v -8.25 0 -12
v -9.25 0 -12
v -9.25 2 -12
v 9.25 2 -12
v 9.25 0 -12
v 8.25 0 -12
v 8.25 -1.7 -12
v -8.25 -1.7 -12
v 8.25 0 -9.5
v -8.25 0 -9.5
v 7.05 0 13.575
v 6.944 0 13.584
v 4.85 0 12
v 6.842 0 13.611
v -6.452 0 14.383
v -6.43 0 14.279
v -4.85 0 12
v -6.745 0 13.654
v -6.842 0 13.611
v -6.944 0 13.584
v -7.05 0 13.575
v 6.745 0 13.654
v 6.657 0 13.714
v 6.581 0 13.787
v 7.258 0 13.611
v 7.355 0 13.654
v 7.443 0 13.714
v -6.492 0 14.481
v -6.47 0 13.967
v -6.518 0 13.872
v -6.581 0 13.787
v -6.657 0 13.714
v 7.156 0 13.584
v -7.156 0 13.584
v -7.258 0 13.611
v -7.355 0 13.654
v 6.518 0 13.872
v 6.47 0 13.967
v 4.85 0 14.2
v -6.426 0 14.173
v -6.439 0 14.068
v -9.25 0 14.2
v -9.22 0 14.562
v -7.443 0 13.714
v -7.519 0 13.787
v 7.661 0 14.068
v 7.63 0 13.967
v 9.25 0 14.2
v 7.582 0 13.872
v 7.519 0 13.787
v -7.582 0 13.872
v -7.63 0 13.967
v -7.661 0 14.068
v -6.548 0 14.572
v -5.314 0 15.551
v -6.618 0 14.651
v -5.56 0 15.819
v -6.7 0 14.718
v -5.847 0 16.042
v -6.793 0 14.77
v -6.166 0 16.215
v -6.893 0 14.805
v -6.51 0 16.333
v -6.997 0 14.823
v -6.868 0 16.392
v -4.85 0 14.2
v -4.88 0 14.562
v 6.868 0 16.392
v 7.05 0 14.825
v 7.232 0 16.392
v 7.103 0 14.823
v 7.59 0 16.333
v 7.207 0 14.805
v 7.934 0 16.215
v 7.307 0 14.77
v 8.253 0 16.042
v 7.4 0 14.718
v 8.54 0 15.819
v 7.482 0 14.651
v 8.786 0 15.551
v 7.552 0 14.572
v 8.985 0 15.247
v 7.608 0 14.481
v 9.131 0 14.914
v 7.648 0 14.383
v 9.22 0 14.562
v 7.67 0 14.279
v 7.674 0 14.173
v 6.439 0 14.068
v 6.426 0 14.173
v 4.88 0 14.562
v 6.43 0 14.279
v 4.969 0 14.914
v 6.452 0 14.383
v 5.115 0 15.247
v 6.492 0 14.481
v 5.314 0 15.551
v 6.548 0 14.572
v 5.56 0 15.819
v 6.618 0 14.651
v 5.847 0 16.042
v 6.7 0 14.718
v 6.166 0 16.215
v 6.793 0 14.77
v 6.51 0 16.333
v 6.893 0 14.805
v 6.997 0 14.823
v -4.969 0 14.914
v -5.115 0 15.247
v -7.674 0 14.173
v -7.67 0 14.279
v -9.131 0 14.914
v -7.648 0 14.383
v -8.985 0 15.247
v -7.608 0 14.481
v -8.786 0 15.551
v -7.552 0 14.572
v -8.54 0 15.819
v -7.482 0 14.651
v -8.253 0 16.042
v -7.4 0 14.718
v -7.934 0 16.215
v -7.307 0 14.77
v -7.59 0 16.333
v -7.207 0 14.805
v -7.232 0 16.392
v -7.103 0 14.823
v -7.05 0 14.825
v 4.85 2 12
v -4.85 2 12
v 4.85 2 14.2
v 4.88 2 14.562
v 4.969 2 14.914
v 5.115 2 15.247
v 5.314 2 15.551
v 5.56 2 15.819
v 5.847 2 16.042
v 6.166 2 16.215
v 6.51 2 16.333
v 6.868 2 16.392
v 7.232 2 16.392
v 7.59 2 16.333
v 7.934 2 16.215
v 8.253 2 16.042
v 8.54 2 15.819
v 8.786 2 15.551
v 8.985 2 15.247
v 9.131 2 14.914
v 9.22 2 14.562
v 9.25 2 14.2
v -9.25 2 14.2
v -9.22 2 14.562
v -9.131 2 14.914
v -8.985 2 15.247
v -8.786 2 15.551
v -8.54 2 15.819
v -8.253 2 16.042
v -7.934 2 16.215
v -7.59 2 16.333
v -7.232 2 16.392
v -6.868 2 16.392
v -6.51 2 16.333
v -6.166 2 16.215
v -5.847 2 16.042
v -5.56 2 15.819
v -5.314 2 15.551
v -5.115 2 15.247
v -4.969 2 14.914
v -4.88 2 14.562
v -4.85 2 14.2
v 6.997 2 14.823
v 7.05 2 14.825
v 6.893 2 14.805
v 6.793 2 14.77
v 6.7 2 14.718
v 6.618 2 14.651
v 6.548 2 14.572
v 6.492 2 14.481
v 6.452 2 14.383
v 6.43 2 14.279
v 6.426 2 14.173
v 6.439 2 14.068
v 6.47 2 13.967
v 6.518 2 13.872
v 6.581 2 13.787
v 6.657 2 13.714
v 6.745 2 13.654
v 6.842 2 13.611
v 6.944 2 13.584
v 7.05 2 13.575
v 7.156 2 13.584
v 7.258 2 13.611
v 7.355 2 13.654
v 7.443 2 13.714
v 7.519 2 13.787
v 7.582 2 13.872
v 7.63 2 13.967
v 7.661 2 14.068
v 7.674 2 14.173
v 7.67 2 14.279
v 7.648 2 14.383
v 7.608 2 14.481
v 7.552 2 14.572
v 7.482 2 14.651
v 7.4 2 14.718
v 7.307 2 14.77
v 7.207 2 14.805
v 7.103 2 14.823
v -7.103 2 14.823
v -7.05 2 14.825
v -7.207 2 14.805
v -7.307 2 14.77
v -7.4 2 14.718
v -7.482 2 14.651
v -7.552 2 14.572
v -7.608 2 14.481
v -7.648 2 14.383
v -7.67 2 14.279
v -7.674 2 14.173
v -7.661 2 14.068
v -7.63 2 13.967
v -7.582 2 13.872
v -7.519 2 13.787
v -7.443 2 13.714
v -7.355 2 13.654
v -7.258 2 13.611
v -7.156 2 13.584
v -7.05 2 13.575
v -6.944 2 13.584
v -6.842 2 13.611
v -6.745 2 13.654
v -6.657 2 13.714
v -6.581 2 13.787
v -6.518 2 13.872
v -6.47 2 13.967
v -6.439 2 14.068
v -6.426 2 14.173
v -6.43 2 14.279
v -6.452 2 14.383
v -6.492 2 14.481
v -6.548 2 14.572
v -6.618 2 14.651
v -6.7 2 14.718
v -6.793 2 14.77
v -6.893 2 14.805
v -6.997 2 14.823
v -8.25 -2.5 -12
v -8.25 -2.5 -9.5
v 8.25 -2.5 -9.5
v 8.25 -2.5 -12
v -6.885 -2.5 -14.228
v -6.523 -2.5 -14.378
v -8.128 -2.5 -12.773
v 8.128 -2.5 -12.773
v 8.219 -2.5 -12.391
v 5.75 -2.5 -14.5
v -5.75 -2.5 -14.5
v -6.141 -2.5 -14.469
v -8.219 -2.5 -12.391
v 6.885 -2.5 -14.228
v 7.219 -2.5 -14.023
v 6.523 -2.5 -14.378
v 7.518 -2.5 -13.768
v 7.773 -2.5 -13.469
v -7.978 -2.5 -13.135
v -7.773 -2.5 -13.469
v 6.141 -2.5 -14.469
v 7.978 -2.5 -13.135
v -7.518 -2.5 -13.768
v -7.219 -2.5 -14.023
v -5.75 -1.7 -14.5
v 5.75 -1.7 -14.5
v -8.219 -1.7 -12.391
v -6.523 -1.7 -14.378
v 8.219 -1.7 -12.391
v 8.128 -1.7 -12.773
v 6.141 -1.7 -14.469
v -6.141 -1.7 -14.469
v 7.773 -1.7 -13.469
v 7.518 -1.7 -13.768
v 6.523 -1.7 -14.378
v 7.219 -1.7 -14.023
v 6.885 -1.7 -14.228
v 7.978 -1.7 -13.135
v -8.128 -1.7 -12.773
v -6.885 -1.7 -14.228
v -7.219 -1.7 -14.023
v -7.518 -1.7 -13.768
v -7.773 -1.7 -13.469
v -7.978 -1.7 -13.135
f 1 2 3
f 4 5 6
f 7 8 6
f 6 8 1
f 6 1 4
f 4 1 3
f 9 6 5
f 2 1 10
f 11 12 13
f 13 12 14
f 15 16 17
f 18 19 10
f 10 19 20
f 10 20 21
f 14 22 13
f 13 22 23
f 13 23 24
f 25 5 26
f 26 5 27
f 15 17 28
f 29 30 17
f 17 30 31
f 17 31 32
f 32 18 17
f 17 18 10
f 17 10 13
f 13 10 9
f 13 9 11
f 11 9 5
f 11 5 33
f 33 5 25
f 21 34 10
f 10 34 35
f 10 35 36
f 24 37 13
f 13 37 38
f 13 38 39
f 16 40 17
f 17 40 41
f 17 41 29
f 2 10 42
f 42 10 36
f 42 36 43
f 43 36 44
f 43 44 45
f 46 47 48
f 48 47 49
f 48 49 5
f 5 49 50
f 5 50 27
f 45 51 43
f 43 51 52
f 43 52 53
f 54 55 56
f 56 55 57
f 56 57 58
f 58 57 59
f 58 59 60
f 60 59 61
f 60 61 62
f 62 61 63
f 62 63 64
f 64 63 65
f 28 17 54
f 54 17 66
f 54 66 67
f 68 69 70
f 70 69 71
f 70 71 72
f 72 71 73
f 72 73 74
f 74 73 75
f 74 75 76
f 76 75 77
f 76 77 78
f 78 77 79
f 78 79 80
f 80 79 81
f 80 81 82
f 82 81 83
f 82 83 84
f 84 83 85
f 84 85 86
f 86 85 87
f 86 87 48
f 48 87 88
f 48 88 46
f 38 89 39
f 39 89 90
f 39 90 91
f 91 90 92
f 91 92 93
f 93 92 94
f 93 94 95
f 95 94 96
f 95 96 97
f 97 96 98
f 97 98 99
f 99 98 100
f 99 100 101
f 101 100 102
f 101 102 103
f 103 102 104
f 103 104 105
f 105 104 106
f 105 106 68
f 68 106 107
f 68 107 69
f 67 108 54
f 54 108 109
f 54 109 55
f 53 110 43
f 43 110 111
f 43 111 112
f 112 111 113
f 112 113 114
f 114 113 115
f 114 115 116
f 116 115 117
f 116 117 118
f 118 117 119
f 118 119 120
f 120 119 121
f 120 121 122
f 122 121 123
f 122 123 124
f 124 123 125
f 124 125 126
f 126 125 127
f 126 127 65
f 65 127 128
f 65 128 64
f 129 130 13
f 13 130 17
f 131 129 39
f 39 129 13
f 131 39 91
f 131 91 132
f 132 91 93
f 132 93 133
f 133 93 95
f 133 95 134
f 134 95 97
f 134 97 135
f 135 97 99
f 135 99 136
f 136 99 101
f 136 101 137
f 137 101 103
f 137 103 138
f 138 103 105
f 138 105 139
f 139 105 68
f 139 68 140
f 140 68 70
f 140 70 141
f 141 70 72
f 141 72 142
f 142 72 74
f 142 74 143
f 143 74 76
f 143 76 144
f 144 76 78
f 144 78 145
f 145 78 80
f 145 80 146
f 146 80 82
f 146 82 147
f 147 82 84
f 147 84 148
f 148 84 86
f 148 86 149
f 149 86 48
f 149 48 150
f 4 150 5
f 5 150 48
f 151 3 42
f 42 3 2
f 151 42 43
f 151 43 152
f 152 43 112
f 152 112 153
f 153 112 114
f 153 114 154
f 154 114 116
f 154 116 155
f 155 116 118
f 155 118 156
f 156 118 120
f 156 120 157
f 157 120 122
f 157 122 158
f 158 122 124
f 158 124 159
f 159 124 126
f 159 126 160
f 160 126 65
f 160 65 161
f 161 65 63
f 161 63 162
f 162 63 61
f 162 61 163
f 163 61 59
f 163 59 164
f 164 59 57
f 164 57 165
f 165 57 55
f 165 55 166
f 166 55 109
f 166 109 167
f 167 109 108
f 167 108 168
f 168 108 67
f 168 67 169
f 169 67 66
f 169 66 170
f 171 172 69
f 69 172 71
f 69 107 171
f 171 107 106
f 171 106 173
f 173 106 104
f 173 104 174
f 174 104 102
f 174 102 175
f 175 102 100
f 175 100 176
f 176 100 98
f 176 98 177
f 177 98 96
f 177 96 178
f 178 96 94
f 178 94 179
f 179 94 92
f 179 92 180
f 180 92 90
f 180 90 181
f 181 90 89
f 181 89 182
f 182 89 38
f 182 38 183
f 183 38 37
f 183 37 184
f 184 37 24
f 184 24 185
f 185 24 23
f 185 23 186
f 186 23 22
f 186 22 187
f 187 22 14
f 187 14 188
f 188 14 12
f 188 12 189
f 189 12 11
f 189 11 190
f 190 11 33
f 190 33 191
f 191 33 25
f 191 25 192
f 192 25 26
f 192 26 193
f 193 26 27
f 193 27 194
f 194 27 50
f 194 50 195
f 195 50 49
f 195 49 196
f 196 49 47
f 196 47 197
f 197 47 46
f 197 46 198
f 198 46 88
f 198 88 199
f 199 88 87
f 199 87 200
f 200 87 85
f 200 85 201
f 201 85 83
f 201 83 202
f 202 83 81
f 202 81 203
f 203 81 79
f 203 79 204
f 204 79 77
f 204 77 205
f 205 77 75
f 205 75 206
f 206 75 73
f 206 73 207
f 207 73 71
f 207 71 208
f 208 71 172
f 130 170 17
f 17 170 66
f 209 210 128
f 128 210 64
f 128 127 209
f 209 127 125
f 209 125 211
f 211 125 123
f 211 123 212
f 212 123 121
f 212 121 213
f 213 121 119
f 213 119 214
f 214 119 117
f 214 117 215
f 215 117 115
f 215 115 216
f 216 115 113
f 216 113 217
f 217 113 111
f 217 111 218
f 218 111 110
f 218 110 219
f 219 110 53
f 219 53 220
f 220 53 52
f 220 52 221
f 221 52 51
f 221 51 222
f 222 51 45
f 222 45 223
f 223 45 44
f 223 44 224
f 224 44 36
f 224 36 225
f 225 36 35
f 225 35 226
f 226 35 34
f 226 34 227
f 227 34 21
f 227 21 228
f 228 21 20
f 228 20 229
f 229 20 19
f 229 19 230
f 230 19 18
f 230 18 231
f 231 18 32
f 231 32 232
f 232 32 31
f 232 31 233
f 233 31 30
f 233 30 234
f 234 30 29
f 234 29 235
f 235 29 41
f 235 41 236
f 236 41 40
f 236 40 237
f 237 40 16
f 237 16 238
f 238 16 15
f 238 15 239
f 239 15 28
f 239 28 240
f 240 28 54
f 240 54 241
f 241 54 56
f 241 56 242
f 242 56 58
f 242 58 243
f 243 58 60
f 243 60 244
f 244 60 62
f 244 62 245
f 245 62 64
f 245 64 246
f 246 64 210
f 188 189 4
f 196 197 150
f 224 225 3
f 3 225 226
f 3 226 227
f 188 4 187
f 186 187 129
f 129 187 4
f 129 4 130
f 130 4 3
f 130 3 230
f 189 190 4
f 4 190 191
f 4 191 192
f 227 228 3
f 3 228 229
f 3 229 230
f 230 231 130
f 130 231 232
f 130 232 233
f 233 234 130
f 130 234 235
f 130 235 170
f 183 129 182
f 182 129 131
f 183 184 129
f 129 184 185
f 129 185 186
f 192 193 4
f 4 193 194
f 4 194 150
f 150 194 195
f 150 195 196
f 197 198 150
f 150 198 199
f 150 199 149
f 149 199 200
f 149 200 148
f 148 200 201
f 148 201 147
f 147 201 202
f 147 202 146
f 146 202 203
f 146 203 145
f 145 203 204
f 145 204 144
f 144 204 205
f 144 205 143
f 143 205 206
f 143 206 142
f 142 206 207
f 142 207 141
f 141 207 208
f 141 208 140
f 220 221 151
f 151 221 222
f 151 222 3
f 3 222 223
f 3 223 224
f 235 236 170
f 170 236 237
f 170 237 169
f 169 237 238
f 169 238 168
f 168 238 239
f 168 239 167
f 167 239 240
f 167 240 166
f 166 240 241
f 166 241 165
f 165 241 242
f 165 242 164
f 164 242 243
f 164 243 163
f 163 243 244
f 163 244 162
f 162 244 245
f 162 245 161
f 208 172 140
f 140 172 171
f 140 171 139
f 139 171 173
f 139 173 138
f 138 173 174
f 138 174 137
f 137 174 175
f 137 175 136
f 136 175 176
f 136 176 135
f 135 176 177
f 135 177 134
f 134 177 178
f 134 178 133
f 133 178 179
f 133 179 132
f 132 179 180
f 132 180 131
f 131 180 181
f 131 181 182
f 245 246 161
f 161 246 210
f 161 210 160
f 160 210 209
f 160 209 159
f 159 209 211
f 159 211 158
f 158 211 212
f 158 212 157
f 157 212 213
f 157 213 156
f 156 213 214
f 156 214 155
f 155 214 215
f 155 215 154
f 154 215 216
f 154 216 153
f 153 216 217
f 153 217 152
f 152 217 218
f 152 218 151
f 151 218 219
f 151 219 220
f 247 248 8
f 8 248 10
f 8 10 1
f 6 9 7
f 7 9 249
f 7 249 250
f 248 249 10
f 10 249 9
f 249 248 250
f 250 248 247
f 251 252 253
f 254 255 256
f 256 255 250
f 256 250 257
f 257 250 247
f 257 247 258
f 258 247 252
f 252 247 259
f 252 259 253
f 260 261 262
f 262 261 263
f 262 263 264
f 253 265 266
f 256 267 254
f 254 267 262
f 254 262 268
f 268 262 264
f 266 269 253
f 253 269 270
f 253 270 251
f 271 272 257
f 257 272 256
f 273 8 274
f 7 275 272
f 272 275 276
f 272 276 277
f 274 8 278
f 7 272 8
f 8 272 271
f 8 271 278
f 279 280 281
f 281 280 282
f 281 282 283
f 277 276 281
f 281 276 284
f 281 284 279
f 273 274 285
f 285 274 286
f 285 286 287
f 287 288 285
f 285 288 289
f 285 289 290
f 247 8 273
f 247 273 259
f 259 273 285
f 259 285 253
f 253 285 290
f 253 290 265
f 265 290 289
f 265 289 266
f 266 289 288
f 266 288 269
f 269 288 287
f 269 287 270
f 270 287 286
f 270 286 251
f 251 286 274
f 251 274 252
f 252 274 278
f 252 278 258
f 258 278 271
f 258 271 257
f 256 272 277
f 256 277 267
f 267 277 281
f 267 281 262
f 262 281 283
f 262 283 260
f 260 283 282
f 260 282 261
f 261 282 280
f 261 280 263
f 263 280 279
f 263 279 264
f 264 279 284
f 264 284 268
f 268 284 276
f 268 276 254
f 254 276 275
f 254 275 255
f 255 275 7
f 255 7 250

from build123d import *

# Parameters (mm, degrees)
SKETCH1_W           = 18.5
SKETCH1_H           = 24
SKETCH1_R           = 0.625
BOSS_EXTRUDE1_DEPTH = 2
SKETCH2_W           = 16.5
SKETCH2_H           = 2.5
BOSS_EXTRUDE2_DEPTH = 2.5
SKETCH3_W           = 16.5
SKETCH3_H           = 2.5
BOSS_EXTRUDE3_DEPTH = 0.8
FILLET2_R           = 2.5


with BuildPart() as part:
    # Sketch1 → Boss-Extrude1 (new body)
    with BuildSketch(Plane(origin=(0, 0, 0), x_dir=(1, 0, 0), z_dir=(0, 1, 0))):
        Rectangle(SKETCH1_W, SKETCH1_H)
        with BuildLine():
            Line((-4.85, -12), (-9.25, -12))
            Line((-9.25, -12), (-9.25, -14.2))
            ThreePointArc((-9.25, -14.2), (-7.05, -16.4), (-4.85, -14.2))
            Line((-4.85, -14.2), (-4.85, -12))
        make_face()
        with Locations((-7.05, -14.2)):
            Circle(SKETCH1_R, mode=Mode.SUBTRACT)
        with BuildLine():
            Line((9.25, -12), (4.85, -12))
            Line((4.85, -12), (4.85, -14.2))
            ThreePointArc((4.85, -14.2), (7.05, -16.4), (9.25, -14.2))
            Line((9.25, -14.2), (9.25, -12))
        make_face()
        with Locations((7.05, -14.2)):
            Circle(SKETCH1_R, mode=Mode.SUBTRACT)
    extrude(amount=BOSS_EXTRUDE1_DEPTH)

    # Sketch2 → Boss-Extrude2 (add)
    with BuildSketch(Plane.XZ):
        with Locations((0, -10.75)):
            Rectangle(SKETCH2_W, SKETCH2_H)
    extrude(amount=BOSS_EXTRUDE2_DEPTH)

    # Sketch3 → Boss-Extrude3 (add)
    with BuildSketch(Plane(origin=(0, -2.5, 0), x_dir=(-1, 0, 0), z_dir=(0, -1, 0))):
        with Locations((0, 13.25)):
            Rectangle(SKETCH3_W, SKETCH3_H)
    extrude(amount=-BOSS_EXTRUDE3_DEPTH)

    # Fillet2
    fillet2_edges = [part.edges().sort_by_distance(p)[0] for p in [
        (-8.25, -2.1, -14.5),
        (8.25, -2.1, -14.5),
    ]]
    fillet(fillet2_edges, radius=FILLET2_R)


solid = part.part
